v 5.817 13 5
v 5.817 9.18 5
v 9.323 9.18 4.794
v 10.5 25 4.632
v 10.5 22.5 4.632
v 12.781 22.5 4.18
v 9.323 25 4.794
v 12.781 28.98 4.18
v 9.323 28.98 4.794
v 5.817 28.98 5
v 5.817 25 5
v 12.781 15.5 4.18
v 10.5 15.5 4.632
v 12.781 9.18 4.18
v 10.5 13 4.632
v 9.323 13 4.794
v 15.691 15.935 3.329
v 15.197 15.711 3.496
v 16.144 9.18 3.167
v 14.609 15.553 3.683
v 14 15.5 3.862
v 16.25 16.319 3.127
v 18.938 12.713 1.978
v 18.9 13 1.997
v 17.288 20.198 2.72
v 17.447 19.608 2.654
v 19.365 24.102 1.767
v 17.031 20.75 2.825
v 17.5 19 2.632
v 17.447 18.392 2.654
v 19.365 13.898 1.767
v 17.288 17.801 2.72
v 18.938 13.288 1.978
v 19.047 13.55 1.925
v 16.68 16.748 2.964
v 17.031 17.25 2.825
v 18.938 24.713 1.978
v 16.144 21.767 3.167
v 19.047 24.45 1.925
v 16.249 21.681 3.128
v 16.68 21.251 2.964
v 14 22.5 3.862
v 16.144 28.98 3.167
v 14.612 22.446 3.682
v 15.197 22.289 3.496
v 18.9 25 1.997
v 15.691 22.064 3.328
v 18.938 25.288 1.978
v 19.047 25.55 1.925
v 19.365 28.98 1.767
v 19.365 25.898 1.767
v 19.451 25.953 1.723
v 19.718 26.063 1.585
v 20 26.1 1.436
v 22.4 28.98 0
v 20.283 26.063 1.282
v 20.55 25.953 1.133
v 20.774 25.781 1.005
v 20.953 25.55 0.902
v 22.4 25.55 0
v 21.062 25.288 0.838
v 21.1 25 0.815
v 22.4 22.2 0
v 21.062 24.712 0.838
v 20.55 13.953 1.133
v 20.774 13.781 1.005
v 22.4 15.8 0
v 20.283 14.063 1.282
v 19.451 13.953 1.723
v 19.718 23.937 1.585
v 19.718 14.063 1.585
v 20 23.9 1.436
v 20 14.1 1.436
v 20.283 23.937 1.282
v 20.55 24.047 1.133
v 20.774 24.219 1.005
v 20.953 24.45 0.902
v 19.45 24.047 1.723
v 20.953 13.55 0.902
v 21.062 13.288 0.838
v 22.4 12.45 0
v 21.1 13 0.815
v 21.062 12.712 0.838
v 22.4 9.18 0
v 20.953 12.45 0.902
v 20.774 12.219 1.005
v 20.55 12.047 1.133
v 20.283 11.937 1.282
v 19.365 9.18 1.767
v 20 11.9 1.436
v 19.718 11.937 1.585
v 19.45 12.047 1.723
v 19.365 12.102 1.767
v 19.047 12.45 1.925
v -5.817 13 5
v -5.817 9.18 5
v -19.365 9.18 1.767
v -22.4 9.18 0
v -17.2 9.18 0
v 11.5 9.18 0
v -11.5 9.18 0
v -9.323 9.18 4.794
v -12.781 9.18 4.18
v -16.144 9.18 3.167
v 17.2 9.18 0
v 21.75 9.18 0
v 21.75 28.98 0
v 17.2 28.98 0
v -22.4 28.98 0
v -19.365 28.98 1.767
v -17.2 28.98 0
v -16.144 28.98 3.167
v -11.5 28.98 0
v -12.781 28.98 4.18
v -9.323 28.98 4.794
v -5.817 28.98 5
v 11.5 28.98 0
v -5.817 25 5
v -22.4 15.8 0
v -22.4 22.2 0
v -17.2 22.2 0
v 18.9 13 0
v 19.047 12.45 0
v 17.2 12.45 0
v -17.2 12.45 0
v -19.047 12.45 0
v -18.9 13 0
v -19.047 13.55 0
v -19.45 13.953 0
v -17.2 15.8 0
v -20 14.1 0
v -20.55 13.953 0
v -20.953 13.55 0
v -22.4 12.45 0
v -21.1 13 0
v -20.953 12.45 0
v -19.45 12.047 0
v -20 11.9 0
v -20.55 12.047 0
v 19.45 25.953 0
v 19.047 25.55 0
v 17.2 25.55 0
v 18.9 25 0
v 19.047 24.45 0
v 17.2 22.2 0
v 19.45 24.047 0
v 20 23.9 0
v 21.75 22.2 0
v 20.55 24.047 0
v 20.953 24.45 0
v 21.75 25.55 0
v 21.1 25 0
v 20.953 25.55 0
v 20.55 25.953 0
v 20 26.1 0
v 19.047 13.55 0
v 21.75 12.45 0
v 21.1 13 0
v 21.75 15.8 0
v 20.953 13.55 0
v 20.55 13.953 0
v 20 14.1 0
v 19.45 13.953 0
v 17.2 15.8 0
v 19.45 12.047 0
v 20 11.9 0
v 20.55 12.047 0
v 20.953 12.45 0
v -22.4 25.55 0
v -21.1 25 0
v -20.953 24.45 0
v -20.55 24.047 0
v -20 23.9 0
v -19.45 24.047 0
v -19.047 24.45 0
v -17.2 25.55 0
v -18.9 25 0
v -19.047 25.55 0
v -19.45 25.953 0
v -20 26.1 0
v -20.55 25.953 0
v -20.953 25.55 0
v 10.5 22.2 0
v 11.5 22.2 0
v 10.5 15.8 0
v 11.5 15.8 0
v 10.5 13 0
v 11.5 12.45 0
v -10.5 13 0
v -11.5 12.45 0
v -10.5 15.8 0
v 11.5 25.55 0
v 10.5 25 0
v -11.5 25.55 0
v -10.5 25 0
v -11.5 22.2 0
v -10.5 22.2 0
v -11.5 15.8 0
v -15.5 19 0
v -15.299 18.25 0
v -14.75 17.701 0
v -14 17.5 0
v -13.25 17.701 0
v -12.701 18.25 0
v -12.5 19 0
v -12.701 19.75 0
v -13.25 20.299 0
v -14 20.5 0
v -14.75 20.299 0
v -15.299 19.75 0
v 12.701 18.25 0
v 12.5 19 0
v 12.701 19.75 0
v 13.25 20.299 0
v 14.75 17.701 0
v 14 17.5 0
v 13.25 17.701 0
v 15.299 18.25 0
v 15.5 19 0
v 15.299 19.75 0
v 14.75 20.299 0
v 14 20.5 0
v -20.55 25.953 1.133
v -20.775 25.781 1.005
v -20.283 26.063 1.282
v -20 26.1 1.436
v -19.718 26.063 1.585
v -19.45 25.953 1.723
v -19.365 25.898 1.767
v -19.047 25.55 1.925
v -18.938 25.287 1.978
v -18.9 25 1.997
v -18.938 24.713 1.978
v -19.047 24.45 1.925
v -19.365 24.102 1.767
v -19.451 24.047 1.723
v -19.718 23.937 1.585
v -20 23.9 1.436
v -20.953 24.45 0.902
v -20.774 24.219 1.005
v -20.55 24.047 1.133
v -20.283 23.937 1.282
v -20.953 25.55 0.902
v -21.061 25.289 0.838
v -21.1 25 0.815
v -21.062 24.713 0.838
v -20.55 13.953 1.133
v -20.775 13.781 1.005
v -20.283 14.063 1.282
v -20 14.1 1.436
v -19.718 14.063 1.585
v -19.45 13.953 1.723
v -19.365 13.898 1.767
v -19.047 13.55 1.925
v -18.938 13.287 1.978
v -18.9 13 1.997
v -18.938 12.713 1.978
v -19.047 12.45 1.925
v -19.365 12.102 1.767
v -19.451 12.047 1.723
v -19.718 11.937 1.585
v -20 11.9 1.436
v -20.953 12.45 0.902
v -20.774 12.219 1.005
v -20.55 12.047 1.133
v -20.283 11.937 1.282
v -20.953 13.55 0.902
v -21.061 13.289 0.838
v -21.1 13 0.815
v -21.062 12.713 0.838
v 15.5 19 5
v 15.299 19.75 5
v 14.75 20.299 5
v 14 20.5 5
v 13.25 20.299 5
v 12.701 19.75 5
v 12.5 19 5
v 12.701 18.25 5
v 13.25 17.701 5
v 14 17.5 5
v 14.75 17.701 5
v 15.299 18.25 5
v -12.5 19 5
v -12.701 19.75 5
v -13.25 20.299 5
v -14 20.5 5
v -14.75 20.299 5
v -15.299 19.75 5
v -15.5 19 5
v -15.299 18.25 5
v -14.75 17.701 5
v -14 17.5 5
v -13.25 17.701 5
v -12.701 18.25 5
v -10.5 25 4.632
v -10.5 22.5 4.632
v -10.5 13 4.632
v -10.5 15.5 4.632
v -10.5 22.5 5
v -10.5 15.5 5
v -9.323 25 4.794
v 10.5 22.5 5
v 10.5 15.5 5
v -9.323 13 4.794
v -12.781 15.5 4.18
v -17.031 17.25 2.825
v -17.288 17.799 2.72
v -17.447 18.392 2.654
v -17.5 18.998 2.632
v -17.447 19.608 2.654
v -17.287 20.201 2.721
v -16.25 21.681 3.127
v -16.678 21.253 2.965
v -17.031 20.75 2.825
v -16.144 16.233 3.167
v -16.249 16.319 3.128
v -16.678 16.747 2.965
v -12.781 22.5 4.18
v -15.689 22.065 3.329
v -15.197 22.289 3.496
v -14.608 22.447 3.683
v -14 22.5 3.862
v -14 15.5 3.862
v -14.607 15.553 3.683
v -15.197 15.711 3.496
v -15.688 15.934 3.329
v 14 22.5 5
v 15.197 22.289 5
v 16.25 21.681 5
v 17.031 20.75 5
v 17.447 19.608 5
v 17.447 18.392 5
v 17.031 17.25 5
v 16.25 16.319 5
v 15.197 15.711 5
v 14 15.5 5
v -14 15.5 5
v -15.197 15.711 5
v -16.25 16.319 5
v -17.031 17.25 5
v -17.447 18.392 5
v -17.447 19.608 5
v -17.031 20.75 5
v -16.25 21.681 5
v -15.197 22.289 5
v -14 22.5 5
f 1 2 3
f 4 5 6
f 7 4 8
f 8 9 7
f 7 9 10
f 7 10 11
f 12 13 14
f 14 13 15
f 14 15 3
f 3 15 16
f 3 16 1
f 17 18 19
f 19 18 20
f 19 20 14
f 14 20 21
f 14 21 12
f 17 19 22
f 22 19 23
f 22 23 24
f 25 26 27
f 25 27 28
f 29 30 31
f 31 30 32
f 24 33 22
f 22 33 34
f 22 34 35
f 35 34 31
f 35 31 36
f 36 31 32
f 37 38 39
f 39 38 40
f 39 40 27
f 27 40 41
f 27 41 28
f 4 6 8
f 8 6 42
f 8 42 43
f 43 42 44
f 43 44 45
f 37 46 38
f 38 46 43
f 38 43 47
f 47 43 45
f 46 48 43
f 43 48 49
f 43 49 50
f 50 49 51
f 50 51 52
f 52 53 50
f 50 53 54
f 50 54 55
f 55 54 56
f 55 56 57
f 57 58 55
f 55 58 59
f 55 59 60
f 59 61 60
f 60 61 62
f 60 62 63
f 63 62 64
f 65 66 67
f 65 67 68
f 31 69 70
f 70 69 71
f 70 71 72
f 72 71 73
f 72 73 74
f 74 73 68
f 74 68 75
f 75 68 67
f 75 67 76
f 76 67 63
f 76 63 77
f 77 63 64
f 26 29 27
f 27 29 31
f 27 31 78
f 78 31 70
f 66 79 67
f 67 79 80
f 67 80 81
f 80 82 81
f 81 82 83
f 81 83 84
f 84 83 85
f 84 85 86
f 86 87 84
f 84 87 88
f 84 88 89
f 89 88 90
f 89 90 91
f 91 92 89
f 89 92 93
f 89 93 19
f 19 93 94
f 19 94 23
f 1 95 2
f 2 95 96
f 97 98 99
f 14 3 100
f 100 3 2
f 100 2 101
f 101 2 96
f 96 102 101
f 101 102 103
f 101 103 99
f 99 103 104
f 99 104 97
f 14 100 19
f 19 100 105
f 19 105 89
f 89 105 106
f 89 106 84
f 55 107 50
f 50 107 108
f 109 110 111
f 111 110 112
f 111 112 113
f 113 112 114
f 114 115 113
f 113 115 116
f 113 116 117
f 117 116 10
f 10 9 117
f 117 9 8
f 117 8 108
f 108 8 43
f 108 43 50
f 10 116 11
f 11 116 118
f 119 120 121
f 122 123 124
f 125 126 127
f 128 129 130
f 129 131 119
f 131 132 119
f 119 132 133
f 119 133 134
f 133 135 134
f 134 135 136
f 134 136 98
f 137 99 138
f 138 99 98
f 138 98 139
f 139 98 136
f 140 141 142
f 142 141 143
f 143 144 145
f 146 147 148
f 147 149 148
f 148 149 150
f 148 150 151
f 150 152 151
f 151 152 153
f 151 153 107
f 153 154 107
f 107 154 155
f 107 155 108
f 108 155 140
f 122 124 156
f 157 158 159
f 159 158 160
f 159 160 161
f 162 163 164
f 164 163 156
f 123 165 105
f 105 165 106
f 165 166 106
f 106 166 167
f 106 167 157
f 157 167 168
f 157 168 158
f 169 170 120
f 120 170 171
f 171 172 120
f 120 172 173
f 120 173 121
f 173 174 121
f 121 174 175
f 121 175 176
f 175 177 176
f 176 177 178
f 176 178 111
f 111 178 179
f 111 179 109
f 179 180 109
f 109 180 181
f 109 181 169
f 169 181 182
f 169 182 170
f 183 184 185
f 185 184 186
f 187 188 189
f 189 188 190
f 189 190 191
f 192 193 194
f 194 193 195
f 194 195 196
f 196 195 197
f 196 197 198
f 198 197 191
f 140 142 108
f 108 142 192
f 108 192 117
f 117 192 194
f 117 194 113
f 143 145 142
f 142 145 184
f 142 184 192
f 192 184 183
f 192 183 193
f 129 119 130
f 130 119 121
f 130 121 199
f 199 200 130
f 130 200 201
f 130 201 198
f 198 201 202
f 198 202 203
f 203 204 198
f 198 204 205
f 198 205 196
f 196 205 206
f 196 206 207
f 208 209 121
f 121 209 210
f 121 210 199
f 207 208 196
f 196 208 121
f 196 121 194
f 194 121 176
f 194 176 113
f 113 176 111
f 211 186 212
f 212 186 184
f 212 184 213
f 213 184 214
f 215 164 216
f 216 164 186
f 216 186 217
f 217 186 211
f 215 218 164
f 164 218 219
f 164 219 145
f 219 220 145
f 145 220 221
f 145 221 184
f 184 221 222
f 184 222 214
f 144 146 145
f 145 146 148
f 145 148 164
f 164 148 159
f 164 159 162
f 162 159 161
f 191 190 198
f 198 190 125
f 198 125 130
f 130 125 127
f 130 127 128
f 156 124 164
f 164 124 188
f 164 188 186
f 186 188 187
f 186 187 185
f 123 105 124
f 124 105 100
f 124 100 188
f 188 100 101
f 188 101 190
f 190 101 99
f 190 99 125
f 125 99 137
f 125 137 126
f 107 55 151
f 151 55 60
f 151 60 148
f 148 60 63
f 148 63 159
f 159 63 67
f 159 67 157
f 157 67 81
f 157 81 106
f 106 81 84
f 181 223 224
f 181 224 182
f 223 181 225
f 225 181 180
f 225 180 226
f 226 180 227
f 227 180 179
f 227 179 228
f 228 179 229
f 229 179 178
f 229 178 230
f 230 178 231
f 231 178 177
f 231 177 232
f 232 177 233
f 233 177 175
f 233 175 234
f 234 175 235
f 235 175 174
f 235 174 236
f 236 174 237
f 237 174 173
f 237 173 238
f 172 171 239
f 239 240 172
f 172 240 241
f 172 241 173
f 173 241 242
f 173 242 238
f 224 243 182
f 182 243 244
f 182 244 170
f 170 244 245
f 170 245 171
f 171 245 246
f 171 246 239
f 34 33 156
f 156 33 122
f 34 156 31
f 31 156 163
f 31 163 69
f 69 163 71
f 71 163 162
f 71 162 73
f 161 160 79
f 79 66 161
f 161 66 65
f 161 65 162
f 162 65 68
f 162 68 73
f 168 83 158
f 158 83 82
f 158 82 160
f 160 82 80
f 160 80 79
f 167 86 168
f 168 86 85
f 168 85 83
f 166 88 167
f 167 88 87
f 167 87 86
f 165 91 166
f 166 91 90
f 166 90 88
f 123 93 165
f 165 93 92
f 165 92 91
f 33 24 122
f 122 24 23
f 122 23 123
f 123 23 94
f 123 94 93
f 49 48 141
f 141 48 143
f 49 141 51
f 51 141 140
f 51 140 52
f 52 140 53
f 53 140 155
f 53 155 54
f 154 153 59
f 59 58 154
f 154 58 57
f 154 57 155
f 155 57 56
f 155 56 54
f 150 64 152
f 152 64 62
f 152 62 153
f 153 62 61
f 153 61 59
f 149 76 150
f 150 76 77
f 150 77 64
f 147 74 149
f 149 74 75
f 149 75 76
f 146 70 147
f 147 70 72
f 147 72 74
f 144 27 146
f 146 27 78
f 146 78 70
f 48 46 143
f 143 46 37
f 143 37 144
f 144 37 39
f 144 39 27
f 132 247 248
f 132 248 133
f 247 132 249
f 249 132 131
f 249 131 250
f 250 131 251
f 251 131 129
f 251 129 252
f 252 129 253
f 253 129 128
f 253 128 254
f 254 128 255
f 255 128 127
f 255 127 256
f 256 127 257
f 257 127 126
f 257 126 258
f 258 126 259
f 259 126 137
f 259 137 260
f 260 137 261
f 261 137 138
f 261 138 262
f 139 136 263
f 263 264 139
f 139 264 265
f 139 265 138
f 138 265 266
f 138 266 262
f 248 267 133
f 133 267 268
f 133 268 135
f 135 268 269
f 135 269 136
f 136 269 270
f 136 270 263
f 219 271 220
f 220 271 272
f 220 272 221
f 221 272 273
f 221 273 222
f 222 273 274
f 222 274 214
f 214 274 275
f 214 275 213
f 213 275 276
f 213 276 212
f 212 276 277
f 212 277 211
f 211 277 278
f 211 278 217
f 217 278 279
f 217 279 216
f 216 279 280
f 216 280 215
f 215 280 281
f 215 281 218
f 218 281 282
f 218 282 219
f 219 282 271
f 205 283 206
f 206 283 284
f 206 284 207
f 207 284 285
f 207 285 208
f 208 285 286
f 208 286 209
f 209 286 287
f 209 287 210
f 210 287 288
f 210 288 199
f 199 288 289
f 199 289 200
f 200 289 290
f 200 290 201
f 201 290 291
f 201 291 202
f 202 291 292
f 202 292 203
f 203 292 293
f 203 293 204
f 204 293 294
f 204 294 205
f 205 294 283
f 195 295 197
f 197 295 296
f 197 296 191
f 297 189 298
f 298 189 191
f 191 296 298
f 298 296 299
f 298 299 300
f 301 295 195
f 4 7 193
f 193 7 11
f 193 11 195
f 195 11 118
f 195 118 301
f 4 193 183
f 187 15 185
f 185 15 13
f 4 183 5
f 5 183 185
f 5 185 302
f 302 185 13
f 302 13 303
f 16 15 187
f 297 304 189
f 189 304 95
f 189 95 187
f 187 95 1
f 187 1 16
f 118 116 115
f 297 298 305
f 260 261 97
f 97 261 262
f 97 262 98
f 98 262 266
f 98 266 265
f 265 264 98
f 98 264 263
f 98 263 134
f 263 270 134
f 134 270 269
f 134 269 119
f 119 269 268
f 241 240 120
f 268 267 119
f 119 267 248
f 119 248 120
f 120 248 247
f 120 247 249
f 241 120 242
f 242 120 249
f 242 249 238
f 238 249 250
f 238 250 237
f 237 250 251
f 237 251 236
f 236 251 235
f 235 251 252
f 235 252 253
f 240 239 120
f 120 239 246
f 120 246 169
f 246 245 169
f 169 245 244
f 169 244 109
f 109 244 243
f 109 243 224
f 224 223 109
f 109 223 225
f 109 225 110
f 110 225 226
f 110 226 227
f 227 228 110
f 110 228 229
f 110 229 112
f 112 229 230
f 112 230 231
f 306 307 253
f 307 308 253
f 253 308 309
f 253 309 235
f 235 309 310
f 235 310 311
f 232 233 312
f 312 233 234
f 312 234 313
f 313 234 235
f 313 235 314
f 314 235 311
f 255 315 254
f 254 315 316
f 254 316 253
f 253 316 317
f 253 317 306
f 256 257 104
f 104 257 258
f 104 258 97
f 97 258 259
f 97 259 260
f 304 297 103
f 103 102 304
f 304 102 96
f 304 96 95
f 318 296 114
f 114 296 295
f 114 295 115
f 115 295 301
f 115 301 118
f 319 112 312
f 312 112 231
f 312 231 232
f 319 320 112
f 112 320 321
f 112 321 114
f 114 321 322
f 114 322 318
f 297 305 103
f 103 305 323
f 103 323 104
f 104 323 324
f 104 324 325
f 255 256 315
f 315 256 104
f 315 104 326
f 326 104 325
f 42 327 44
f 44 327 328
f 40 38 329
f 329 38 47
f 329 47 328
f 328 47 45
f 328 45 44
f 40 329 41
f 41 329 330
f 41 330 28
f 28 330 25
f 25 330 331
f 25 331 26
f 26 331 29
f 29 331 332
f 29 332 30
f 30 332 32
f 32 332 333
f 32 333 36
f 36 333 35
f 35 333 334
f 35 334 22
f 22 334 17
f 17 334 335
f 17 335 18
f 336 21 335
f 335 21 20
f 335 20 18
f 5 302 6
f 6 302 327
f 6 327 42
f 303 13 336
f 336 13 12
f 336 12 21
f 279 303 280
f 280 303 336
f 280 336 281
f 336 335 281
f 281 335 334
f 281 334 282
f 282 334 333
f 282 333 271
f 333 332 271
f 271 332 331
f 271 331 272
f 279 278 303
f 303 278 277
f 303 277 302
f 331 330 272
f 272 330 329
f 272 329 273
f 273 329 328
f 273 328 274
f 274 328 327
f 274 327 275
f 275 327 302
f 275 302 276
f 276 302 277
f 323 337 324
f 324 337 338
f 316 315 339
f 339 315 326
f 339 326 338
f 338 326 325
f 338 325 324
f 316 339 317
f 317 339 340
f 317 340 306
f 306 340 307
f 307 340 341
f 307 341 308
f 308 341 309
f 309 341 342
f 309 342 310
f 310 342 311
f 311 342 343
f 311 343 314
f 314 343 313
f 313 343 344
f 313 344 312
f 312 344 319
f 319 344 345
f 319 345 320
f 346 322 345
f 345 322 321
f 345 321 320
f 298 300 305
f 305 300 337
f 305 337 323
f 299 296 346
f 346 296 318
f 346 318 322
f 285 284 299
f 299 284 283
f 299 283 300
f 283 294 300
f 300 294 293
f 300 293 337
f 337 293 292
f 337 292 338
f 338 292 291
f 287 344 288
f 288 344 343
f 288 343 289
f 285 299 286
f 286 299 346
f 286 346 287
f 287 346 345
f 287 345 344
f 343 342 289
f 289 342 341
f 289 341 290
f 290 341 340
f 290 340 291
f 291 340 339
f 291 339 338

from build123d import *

# Parameters (mm, degrees)
SKETCH1_W           = 44.8
SKETCH1_H           = 19.8
BOSS_EXTRUDE1_DEPTH = 5
SKETCH2_R           = 1.1
CUT_EXTRUDE1_DEPTH  = 13
SKETCH3_R           = 1.5
CUT_EXTRUDE2_DEPTH  = 10
SKETCH4_W           = 21
SKETCH4_H           = 12
CUT_EXTRUDE3_DEPTH  = 10
FILLET1_START       = 9.18
FILLET1_DEPTH       = 19.8
BOSS_EXTRUDE2_START = -5
SKETCH5_R           = 3.5
SKETCH5_R_2         = 1.5
BOSS_EXTRUDE2_DEPTH = 5


with BuildPart() as part:
    # Sketch1 → Boss-Extrude1 (new body)
    with BuildSketch(Plane.XY):
        with Locations((0, 19.08)):
            Rectangle(SKETCH1_W, SKETCH1_H)
    extrude(amount=BOSS_EXTRUDE1_DEPTH)

    # Sketch2 → Cut-Extrude1 (cut)
    with BuildSketch(Plane.XY.offset(5)):
        with Locations((-20, 25)):
            Circle(SKETCH2_R)
        with Locations((-20, 13)):
            Circle(SKETCH2_R)
        with Locations((20, 25)):
            Circle(SKETCH2_R)
        with Locations((20, 13)):
            Circle(SKETCH2_R)
    extrude(amount=-CUT_EXTRUDE1_DEPTH, mode=Mode.SUBTRACT)

    # Sketch3 → Cut-Extrude2 (cut)
    with BuildSketch(Plane.XY.offset(5)):
        with Locations((-14, 19)):
            Circle(SKETCH3_R)
        with Locations((14, 19)):
            Circle(SKETCH3_R)
    extrude(amount=-CUT_EXTRUDE2_DEPTH, mode=Mode.SUBTRACT)

    # Sketch4 → Cut-Extrude3 (cut)
    with BuildSketch(Plane.XY.offset(5)):
        with Locations((0, 19)):
            Rectangle(SKETCH4_W, SKETCH4_H)
    extrude(amount=-CUT_EXTRUDE3_DEPTH, mode=Mode.SUBTRACT)

    # Fillet1: read off the stored shape, not the designer's step
    # Fillet1 outline → Fillet1 (cut)
    with BuildSketch(Plane(origin=(0, 0, 0), x_dir=(1, 0, 0), z_dir=(0, 1, 0)).offset(FILLET1_START)):
        with BuildLine():
            Line((22.4, -5), (22.4, 0))
            ThreePointArc((22.4, 0), (14.477130086, -3.722813233), (5.816876048, -5))
            Line((5.816876048, -5), (22.4, -5))
        make_face()
        with BuildLine():
            Line((-22.4, -5), (-5.816876048, -5))
            ThreePointArc((-5.816876048, -5), (-14.477130086, -3.722813233), (-22.4, 0))
            Line((-22.4, 0), (-22.4, -5))
        make_face()
    extrude(amount=FILLET1_DEPTH, mode=Mode.SUBTRACT)

    # Sketch5 → Boss-Extrude2 (add)
    # profile 1 of 6: a face of its own
    with BuildSketch(Plane(origin=(0, 0, 0), x_dir=(-1, 0, 0), z_dir=(0, 0, -1)).offset(BOSS_EXTRUDE2_START)):
        with Locations((-14, 19)):
            Circle(SKETCH5_R)
        with Locations((-14, 19)):
            Circle(SKETCH5_R_2, mode=Mode.SUBTRACT)
    # profile 2 of 6: a face of its own
    with BuildSketch(Plane(origin=(0, 0, 0), x_dir=(-1, 0, 0), z_dir=(0, 0, -1)).offset(BOSS_EXTRUDE2_START)):
        with BuildLine():
            Line((-10.5, 22.5), (-14, 22.5))
            ThreePointArc((-14, 22.5), (-11.525126266, 21.474873734), (-10.5, 19))
            Line((-10.5, 19), (-10.5, 22.5))
        make_face()
    # profile 3 of 6: a face of its own
    with BuildSketch(Plane(origin=(0, 0, 0), x_dir=(-1, 0, 0), z_dir=(0, 0, -1)).offset(BOSS_EXTRUDE2_START)):
        with BuildLine():
            Line((-10.5, 15.5), (-10.5, 19))
            ThreePointArc((-10.5, 19), (-11.525126266, 16.525126266), (-14, 15.5))
            Line((-14, 15.5), (-10.5, 15.5))
        make_face()
    # profile 4 of 6: a face of its own
    with BuildSketch(Plane(origin=(0, 0, 0), x_dir=(-1, 0, 0), z_dir=(0, 0, -1)).offset(BOSS_EXTRUDE2_START)):
        with Locations((14, 19)):
            Circle(SKETCH5_R)
        with Locations((14, 19)):
            Circle(SKETCH5_R_2, mode=Mode.SUBTRACT)
    # profile 5 of 6: a face of its own
    with BuildSketch(Plane(origin=(0, 0, 0), x_dir=(-1, 0, 0), z_dir=(0, 0, -1)).offset(BOSS_EXTRUDE2_START)):
        with BuildLine():
            ThreePointArc((14, 15.5), (11.525126266, 16.525126266), (10.5, 19))
            Line((10.5, 19), (10.5, 15.5))
            Line((10.5, 15.5), (14, 15.5))
        make_face()
    # profile 6 of 6: a face of its own
    with BuildSketch(Plane(origin=(0, 0, 0), x_dir=(-1, 0, 0), z_dir=(0, 0, -1)).offset(BOSS_EXTRUDE2_START)):
        with BuildLine():
            ThreePointArc((10.5, 19), (11.525126266, 21.474873734), (14, 22.5))
            Line((14, 22.5), (10.5, 22.5))
            Line((10.5, 22.5), (10.5, 19))
        make_face()
    extrude(amount=BOSS_EXTRUDE2_DEPTH)


solid = part.part
